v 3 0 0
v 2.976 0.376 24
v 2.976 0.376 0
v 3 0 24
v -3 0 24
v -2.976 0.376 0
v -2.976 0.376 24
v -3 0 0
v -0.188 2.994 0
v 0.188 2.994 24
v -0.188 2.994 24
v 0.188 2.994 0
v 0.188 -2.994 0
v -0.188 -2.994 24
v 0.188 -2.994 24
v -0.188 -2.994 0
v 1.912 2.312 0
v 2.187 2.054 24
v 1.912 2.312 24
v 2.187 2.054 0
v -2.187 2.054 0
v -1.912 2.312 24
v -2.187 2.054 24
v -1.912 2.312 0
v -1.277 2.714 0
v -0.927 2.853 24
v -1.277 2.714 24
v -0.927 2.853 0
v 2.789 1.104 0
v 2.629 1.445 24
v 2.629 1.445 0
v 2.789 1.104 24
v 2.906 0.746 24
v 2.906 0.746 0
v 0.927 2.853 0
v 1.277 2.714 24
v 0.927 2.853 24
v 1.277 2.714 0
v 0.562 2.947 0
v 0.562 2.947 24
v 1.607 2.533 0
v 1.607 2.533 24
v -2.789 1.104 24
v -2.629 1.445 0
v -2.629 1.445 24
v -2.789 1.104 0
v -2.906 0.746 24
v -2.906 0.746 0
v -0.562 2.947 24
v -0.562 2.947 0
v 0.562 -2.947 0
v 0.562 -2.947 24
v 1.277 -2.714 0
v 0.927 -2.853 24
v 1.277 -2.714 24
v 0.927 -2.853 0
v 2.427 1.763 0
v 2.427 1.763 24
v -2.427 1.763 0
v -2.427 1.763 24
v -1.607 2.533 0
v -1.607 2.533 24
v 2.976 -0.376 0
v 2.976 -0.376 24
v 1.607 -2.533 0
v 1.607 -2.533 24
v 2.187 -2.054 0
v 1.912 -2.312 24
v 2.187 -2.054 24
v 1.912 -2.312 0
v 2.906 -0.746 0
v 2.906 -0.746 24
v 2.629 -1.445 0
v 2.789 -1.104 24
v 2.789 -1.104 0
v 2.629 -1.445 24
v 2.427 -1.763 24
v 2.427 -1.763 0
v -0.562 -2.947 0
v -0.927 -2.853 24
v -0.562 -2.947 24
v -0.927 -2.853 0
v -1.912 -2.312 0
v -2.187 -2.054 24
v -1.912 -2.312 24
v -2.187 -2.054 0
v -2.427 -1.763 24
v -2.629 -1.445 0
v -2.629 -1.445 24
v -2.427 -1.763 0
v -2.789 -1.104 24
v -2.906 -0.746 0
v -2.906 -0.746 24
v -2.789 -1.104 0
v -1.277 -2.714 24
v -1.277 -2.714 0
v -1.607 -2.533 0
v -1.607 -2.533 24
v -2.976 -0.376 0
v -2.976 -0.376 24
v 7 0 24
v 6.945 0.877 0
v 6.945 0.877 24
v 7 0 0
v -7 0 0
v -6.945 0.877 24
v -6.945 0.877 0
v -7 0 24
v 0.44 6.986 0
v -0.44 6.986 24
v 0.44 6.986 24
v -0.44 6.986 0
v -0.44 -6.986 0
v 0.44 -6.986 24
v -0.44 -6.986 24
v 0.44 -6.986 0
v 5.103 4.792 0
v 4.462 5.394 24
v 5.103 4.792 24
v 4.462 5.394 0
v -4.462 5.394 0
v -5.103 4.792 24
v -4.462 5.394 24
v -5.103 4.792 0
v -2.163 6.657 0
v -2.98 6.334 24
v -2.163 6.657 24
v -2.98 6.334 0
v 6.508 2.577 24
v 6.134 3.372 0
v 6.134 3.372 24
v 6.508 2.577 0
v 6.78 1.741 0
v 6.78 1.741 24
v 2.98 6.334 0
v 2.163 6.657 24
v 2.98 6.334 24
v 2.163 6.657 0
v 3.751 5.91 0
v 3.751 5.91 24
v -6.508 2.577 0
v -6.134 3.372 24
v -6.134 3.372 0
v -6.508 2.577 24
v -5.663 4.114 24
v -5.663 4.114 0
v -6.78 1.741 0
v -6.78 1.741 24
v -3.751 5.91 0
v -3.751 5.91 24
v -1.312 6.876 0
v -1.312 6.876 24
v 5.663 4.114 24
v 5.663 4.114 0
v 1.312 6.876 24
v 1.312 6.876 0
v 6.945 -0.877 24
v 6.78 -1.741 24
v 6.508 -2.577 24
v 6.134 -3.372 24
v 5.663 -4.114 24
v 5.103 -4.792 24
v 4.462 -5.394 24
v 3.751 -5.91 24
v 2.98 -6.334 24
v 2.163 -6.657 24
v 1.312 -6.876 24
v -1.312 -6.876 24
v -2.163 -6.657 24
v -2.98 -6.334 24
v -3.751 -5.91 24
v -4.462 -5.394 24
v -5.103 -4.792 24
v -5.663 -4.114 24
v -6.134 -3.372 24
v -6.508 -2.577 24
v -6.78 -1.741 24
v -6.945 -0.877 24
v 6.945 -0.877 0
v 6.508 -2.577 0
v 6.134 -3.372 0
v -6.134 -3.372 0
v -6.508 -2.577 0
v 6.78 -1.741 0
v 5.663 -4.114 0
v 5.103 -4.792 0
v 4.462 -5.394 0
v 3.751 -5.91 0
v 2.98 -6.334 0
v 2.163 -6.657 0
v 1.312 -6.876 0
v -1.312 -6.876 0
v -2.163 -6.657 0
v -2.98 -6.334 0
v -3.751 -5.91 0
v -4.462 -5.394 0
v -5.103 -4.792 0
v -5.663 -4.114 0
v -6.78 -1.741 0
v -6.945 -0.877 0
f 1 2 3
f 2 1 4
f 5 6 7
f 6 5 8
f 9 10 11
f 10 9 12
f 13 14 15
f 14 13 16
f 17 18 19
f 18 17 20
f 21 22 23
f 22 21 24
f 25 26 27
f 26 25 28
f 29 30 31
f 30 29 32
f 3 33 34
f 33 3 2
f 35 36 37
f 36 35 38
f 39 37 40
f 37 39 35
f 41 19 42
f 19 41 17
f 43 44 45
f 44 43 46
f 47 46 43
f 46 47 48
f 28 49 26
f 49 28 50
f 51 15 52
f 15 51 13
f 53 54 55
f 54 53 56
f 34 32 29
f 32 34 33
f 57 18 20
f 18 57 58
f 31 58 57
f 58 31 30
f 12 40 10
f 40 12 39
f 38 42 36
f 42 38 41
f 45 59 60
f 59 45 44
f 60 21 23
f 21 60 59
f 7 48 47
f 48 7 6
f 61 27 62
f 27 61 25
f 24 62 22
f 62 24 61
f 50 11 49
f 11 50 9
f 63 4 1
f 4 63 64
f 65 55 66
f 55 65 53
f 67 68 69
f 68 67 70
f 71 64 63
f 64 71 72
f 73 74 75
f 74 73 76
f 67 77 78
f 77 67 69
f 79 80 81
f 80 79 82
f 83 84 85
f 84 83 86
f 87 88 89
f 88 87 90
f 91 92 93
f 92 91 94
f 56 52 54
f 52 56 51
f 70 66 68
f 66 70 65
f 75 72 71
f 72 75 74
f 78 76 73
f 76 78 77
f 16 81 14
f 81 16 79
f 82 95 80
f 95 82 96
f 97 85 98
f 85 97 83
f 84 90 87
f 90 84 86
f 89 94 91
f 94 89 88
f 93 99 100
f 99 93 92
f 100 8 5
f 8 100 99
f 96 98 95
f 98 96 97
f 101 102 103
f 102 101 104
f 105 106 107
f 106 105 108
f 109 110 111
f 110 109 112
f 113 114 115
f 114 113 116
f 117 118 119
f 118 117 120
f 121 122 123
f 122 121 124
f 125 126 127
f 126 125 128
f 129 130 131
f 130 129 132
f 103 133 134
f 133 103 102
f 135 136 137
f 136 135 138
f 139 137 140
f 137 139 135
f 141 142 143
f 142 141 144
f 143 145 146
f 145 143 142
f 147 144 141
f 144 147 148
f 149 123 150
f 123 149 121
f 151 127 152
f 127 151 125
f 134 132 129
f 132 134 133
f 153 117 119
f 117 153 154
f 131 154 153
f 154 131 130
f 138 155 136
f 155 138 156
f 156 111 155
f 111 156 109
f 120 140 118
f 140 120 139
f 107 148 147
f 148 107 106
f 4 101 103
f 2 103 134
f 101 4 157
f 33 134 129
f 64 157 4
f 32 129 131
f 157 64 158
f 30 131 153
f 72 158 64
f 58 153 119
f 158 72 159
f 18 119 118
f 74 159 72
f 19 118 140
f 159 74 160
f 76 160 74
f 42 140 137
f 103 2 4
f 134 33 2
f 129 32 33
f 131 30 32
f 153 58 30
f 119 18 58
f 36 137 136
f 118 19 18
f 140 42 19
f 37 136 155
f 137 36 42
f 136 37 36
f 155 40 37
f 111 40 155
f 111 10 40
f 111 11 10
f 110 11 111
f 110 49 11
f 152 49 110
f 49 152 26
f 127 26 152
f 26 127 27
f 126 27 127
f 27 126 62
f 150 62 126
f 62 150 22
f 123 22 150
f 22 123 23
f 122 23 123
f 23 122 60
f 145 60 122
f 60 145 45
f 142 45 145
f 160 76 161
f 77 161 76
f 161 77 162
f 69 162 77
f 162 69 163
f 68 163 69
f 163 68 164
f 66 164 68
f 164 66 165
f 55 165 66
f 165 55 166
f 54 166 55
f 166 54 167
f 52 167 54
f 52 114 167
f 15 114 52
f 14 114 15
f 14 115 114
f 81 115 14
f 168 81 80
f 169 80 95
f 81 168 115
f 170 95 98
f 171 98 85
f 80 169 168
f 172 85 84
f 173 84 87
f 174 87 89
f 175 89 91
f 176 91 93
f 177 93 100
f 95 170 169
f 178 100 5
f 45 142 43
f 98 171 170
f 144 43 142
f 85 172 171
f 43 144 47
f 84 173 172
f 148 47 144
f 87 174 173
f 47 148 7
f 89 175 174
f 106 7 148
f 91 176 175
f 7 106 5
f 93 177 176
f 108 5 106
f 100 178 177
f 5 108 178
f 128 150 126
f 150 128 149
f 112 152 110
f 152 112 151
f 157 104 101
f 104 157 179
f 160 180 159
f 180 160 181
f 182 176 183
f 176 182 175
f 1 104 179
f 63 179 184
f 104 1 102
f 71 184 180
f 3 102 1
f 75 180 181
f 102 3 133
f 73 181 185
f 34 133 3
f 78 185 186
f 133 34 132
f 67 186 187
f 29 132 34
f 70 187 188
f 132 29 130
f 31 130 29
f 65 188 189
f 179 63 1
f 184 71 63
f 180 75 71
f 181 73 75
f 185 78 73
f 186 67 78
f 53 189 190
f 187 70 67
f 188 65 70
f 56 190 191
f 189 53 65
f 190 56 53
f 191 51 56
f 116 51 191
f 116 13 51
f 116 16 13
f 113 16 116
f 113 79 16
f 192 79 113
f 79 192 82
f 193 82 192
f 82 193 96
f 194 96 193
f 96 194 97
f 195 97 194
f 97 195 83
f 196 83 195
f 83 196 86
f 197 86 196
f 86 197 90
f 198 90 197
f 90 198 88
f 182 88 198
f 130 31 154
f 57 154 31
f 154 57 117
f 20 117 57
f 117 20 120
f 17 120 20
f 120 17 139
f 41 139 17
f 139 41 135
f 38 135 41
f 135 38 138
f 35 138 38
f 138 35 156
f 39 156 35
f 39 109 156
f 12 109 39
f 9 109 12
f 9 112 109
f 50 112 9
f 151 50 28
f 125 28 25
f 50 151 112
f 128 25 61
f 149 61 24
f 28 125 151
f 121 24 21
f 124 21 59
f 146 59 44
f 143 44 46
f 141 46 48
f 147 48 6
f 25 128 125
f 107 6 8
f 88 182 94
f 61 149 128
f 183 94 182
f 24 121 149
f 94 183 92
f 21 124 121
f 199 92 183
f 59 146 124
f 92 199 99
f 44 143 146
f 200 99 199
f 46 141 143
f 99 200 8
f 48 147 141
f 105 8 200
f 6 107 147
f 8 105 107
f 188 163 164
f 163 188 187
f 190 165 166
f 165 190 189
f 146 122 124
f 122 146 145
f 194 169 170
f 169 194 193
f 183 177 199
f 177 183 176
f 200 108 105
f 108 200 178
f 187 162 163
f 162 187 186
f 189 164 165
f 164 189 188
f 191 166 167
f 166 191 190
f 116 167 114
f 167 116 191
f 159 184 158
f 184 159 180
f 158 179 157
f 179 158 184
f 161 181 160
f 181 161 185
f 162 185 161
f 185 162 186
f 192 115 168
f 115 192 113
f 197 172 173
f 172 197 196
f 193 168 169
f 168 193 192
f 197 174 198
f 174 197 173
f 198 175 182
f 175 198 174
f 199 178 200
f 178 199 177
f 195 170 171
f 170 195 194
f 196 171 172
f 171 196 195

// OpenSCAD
$fn = 50;


difference() {
	union() {
		*color(alpha = 1.0000000000, c = "gray") {
			translate(v = [0, 7, 0]) {
				linear_extrude(height = 1) {
					text(font = "Arial:style=Bold", halign = "center", size = 4.5000000000, text = "COMMENT plate main", valign = "center");
				}
			}
		}
		*color(alpha = 1.0000000000, c = "gray") {
			translate(v = [0, 14, 0]) {
				linear_extrude(height = 1) {
					text(font = "Arial:style=Bold", halign = "center", size = 4.5000000000, text = "COMMENT description oobb_plate_shape_p_type_24_depth_1_width_1_height_24_thickness_true_both_holes", valign = "center");
				}
			}
		}
		cylinder(h = 24, r = 7.0000000000);
	}
	union() {
		*color(alpha = 1.0000000000, c = "gray") {
			translate(v = [0, 7, 0]) {
				linear_extrude(height = 1) {
					text(font = "Arial:style=Bold", halign = "center", size = 4.5000000000, text = "COMMENT holes main", valign = "center");
				}
			}
		}
		*color(alpha = 1.0000000000, c = "gray") {
			translate(v = [0, 14, 0]) {
				linear_extrude(height = 1) {
					text(font = "Arial:style=Bold", halign = "center", size = 4.5000000000, text = "COMMENT description oobb_holes_shape_n_type_1_width_1_height_24_thickness_true_both_holes", valign = "center");
				}
			}
		}
		translate(v = [0, 0, -50]) {
			cylinder(h = 100, r = 3.0000000000);
		}
		translate(v = [0, 0, -50]) {
			cylinder(h = 100, r = 1.5000000000);
		}
	}
}
